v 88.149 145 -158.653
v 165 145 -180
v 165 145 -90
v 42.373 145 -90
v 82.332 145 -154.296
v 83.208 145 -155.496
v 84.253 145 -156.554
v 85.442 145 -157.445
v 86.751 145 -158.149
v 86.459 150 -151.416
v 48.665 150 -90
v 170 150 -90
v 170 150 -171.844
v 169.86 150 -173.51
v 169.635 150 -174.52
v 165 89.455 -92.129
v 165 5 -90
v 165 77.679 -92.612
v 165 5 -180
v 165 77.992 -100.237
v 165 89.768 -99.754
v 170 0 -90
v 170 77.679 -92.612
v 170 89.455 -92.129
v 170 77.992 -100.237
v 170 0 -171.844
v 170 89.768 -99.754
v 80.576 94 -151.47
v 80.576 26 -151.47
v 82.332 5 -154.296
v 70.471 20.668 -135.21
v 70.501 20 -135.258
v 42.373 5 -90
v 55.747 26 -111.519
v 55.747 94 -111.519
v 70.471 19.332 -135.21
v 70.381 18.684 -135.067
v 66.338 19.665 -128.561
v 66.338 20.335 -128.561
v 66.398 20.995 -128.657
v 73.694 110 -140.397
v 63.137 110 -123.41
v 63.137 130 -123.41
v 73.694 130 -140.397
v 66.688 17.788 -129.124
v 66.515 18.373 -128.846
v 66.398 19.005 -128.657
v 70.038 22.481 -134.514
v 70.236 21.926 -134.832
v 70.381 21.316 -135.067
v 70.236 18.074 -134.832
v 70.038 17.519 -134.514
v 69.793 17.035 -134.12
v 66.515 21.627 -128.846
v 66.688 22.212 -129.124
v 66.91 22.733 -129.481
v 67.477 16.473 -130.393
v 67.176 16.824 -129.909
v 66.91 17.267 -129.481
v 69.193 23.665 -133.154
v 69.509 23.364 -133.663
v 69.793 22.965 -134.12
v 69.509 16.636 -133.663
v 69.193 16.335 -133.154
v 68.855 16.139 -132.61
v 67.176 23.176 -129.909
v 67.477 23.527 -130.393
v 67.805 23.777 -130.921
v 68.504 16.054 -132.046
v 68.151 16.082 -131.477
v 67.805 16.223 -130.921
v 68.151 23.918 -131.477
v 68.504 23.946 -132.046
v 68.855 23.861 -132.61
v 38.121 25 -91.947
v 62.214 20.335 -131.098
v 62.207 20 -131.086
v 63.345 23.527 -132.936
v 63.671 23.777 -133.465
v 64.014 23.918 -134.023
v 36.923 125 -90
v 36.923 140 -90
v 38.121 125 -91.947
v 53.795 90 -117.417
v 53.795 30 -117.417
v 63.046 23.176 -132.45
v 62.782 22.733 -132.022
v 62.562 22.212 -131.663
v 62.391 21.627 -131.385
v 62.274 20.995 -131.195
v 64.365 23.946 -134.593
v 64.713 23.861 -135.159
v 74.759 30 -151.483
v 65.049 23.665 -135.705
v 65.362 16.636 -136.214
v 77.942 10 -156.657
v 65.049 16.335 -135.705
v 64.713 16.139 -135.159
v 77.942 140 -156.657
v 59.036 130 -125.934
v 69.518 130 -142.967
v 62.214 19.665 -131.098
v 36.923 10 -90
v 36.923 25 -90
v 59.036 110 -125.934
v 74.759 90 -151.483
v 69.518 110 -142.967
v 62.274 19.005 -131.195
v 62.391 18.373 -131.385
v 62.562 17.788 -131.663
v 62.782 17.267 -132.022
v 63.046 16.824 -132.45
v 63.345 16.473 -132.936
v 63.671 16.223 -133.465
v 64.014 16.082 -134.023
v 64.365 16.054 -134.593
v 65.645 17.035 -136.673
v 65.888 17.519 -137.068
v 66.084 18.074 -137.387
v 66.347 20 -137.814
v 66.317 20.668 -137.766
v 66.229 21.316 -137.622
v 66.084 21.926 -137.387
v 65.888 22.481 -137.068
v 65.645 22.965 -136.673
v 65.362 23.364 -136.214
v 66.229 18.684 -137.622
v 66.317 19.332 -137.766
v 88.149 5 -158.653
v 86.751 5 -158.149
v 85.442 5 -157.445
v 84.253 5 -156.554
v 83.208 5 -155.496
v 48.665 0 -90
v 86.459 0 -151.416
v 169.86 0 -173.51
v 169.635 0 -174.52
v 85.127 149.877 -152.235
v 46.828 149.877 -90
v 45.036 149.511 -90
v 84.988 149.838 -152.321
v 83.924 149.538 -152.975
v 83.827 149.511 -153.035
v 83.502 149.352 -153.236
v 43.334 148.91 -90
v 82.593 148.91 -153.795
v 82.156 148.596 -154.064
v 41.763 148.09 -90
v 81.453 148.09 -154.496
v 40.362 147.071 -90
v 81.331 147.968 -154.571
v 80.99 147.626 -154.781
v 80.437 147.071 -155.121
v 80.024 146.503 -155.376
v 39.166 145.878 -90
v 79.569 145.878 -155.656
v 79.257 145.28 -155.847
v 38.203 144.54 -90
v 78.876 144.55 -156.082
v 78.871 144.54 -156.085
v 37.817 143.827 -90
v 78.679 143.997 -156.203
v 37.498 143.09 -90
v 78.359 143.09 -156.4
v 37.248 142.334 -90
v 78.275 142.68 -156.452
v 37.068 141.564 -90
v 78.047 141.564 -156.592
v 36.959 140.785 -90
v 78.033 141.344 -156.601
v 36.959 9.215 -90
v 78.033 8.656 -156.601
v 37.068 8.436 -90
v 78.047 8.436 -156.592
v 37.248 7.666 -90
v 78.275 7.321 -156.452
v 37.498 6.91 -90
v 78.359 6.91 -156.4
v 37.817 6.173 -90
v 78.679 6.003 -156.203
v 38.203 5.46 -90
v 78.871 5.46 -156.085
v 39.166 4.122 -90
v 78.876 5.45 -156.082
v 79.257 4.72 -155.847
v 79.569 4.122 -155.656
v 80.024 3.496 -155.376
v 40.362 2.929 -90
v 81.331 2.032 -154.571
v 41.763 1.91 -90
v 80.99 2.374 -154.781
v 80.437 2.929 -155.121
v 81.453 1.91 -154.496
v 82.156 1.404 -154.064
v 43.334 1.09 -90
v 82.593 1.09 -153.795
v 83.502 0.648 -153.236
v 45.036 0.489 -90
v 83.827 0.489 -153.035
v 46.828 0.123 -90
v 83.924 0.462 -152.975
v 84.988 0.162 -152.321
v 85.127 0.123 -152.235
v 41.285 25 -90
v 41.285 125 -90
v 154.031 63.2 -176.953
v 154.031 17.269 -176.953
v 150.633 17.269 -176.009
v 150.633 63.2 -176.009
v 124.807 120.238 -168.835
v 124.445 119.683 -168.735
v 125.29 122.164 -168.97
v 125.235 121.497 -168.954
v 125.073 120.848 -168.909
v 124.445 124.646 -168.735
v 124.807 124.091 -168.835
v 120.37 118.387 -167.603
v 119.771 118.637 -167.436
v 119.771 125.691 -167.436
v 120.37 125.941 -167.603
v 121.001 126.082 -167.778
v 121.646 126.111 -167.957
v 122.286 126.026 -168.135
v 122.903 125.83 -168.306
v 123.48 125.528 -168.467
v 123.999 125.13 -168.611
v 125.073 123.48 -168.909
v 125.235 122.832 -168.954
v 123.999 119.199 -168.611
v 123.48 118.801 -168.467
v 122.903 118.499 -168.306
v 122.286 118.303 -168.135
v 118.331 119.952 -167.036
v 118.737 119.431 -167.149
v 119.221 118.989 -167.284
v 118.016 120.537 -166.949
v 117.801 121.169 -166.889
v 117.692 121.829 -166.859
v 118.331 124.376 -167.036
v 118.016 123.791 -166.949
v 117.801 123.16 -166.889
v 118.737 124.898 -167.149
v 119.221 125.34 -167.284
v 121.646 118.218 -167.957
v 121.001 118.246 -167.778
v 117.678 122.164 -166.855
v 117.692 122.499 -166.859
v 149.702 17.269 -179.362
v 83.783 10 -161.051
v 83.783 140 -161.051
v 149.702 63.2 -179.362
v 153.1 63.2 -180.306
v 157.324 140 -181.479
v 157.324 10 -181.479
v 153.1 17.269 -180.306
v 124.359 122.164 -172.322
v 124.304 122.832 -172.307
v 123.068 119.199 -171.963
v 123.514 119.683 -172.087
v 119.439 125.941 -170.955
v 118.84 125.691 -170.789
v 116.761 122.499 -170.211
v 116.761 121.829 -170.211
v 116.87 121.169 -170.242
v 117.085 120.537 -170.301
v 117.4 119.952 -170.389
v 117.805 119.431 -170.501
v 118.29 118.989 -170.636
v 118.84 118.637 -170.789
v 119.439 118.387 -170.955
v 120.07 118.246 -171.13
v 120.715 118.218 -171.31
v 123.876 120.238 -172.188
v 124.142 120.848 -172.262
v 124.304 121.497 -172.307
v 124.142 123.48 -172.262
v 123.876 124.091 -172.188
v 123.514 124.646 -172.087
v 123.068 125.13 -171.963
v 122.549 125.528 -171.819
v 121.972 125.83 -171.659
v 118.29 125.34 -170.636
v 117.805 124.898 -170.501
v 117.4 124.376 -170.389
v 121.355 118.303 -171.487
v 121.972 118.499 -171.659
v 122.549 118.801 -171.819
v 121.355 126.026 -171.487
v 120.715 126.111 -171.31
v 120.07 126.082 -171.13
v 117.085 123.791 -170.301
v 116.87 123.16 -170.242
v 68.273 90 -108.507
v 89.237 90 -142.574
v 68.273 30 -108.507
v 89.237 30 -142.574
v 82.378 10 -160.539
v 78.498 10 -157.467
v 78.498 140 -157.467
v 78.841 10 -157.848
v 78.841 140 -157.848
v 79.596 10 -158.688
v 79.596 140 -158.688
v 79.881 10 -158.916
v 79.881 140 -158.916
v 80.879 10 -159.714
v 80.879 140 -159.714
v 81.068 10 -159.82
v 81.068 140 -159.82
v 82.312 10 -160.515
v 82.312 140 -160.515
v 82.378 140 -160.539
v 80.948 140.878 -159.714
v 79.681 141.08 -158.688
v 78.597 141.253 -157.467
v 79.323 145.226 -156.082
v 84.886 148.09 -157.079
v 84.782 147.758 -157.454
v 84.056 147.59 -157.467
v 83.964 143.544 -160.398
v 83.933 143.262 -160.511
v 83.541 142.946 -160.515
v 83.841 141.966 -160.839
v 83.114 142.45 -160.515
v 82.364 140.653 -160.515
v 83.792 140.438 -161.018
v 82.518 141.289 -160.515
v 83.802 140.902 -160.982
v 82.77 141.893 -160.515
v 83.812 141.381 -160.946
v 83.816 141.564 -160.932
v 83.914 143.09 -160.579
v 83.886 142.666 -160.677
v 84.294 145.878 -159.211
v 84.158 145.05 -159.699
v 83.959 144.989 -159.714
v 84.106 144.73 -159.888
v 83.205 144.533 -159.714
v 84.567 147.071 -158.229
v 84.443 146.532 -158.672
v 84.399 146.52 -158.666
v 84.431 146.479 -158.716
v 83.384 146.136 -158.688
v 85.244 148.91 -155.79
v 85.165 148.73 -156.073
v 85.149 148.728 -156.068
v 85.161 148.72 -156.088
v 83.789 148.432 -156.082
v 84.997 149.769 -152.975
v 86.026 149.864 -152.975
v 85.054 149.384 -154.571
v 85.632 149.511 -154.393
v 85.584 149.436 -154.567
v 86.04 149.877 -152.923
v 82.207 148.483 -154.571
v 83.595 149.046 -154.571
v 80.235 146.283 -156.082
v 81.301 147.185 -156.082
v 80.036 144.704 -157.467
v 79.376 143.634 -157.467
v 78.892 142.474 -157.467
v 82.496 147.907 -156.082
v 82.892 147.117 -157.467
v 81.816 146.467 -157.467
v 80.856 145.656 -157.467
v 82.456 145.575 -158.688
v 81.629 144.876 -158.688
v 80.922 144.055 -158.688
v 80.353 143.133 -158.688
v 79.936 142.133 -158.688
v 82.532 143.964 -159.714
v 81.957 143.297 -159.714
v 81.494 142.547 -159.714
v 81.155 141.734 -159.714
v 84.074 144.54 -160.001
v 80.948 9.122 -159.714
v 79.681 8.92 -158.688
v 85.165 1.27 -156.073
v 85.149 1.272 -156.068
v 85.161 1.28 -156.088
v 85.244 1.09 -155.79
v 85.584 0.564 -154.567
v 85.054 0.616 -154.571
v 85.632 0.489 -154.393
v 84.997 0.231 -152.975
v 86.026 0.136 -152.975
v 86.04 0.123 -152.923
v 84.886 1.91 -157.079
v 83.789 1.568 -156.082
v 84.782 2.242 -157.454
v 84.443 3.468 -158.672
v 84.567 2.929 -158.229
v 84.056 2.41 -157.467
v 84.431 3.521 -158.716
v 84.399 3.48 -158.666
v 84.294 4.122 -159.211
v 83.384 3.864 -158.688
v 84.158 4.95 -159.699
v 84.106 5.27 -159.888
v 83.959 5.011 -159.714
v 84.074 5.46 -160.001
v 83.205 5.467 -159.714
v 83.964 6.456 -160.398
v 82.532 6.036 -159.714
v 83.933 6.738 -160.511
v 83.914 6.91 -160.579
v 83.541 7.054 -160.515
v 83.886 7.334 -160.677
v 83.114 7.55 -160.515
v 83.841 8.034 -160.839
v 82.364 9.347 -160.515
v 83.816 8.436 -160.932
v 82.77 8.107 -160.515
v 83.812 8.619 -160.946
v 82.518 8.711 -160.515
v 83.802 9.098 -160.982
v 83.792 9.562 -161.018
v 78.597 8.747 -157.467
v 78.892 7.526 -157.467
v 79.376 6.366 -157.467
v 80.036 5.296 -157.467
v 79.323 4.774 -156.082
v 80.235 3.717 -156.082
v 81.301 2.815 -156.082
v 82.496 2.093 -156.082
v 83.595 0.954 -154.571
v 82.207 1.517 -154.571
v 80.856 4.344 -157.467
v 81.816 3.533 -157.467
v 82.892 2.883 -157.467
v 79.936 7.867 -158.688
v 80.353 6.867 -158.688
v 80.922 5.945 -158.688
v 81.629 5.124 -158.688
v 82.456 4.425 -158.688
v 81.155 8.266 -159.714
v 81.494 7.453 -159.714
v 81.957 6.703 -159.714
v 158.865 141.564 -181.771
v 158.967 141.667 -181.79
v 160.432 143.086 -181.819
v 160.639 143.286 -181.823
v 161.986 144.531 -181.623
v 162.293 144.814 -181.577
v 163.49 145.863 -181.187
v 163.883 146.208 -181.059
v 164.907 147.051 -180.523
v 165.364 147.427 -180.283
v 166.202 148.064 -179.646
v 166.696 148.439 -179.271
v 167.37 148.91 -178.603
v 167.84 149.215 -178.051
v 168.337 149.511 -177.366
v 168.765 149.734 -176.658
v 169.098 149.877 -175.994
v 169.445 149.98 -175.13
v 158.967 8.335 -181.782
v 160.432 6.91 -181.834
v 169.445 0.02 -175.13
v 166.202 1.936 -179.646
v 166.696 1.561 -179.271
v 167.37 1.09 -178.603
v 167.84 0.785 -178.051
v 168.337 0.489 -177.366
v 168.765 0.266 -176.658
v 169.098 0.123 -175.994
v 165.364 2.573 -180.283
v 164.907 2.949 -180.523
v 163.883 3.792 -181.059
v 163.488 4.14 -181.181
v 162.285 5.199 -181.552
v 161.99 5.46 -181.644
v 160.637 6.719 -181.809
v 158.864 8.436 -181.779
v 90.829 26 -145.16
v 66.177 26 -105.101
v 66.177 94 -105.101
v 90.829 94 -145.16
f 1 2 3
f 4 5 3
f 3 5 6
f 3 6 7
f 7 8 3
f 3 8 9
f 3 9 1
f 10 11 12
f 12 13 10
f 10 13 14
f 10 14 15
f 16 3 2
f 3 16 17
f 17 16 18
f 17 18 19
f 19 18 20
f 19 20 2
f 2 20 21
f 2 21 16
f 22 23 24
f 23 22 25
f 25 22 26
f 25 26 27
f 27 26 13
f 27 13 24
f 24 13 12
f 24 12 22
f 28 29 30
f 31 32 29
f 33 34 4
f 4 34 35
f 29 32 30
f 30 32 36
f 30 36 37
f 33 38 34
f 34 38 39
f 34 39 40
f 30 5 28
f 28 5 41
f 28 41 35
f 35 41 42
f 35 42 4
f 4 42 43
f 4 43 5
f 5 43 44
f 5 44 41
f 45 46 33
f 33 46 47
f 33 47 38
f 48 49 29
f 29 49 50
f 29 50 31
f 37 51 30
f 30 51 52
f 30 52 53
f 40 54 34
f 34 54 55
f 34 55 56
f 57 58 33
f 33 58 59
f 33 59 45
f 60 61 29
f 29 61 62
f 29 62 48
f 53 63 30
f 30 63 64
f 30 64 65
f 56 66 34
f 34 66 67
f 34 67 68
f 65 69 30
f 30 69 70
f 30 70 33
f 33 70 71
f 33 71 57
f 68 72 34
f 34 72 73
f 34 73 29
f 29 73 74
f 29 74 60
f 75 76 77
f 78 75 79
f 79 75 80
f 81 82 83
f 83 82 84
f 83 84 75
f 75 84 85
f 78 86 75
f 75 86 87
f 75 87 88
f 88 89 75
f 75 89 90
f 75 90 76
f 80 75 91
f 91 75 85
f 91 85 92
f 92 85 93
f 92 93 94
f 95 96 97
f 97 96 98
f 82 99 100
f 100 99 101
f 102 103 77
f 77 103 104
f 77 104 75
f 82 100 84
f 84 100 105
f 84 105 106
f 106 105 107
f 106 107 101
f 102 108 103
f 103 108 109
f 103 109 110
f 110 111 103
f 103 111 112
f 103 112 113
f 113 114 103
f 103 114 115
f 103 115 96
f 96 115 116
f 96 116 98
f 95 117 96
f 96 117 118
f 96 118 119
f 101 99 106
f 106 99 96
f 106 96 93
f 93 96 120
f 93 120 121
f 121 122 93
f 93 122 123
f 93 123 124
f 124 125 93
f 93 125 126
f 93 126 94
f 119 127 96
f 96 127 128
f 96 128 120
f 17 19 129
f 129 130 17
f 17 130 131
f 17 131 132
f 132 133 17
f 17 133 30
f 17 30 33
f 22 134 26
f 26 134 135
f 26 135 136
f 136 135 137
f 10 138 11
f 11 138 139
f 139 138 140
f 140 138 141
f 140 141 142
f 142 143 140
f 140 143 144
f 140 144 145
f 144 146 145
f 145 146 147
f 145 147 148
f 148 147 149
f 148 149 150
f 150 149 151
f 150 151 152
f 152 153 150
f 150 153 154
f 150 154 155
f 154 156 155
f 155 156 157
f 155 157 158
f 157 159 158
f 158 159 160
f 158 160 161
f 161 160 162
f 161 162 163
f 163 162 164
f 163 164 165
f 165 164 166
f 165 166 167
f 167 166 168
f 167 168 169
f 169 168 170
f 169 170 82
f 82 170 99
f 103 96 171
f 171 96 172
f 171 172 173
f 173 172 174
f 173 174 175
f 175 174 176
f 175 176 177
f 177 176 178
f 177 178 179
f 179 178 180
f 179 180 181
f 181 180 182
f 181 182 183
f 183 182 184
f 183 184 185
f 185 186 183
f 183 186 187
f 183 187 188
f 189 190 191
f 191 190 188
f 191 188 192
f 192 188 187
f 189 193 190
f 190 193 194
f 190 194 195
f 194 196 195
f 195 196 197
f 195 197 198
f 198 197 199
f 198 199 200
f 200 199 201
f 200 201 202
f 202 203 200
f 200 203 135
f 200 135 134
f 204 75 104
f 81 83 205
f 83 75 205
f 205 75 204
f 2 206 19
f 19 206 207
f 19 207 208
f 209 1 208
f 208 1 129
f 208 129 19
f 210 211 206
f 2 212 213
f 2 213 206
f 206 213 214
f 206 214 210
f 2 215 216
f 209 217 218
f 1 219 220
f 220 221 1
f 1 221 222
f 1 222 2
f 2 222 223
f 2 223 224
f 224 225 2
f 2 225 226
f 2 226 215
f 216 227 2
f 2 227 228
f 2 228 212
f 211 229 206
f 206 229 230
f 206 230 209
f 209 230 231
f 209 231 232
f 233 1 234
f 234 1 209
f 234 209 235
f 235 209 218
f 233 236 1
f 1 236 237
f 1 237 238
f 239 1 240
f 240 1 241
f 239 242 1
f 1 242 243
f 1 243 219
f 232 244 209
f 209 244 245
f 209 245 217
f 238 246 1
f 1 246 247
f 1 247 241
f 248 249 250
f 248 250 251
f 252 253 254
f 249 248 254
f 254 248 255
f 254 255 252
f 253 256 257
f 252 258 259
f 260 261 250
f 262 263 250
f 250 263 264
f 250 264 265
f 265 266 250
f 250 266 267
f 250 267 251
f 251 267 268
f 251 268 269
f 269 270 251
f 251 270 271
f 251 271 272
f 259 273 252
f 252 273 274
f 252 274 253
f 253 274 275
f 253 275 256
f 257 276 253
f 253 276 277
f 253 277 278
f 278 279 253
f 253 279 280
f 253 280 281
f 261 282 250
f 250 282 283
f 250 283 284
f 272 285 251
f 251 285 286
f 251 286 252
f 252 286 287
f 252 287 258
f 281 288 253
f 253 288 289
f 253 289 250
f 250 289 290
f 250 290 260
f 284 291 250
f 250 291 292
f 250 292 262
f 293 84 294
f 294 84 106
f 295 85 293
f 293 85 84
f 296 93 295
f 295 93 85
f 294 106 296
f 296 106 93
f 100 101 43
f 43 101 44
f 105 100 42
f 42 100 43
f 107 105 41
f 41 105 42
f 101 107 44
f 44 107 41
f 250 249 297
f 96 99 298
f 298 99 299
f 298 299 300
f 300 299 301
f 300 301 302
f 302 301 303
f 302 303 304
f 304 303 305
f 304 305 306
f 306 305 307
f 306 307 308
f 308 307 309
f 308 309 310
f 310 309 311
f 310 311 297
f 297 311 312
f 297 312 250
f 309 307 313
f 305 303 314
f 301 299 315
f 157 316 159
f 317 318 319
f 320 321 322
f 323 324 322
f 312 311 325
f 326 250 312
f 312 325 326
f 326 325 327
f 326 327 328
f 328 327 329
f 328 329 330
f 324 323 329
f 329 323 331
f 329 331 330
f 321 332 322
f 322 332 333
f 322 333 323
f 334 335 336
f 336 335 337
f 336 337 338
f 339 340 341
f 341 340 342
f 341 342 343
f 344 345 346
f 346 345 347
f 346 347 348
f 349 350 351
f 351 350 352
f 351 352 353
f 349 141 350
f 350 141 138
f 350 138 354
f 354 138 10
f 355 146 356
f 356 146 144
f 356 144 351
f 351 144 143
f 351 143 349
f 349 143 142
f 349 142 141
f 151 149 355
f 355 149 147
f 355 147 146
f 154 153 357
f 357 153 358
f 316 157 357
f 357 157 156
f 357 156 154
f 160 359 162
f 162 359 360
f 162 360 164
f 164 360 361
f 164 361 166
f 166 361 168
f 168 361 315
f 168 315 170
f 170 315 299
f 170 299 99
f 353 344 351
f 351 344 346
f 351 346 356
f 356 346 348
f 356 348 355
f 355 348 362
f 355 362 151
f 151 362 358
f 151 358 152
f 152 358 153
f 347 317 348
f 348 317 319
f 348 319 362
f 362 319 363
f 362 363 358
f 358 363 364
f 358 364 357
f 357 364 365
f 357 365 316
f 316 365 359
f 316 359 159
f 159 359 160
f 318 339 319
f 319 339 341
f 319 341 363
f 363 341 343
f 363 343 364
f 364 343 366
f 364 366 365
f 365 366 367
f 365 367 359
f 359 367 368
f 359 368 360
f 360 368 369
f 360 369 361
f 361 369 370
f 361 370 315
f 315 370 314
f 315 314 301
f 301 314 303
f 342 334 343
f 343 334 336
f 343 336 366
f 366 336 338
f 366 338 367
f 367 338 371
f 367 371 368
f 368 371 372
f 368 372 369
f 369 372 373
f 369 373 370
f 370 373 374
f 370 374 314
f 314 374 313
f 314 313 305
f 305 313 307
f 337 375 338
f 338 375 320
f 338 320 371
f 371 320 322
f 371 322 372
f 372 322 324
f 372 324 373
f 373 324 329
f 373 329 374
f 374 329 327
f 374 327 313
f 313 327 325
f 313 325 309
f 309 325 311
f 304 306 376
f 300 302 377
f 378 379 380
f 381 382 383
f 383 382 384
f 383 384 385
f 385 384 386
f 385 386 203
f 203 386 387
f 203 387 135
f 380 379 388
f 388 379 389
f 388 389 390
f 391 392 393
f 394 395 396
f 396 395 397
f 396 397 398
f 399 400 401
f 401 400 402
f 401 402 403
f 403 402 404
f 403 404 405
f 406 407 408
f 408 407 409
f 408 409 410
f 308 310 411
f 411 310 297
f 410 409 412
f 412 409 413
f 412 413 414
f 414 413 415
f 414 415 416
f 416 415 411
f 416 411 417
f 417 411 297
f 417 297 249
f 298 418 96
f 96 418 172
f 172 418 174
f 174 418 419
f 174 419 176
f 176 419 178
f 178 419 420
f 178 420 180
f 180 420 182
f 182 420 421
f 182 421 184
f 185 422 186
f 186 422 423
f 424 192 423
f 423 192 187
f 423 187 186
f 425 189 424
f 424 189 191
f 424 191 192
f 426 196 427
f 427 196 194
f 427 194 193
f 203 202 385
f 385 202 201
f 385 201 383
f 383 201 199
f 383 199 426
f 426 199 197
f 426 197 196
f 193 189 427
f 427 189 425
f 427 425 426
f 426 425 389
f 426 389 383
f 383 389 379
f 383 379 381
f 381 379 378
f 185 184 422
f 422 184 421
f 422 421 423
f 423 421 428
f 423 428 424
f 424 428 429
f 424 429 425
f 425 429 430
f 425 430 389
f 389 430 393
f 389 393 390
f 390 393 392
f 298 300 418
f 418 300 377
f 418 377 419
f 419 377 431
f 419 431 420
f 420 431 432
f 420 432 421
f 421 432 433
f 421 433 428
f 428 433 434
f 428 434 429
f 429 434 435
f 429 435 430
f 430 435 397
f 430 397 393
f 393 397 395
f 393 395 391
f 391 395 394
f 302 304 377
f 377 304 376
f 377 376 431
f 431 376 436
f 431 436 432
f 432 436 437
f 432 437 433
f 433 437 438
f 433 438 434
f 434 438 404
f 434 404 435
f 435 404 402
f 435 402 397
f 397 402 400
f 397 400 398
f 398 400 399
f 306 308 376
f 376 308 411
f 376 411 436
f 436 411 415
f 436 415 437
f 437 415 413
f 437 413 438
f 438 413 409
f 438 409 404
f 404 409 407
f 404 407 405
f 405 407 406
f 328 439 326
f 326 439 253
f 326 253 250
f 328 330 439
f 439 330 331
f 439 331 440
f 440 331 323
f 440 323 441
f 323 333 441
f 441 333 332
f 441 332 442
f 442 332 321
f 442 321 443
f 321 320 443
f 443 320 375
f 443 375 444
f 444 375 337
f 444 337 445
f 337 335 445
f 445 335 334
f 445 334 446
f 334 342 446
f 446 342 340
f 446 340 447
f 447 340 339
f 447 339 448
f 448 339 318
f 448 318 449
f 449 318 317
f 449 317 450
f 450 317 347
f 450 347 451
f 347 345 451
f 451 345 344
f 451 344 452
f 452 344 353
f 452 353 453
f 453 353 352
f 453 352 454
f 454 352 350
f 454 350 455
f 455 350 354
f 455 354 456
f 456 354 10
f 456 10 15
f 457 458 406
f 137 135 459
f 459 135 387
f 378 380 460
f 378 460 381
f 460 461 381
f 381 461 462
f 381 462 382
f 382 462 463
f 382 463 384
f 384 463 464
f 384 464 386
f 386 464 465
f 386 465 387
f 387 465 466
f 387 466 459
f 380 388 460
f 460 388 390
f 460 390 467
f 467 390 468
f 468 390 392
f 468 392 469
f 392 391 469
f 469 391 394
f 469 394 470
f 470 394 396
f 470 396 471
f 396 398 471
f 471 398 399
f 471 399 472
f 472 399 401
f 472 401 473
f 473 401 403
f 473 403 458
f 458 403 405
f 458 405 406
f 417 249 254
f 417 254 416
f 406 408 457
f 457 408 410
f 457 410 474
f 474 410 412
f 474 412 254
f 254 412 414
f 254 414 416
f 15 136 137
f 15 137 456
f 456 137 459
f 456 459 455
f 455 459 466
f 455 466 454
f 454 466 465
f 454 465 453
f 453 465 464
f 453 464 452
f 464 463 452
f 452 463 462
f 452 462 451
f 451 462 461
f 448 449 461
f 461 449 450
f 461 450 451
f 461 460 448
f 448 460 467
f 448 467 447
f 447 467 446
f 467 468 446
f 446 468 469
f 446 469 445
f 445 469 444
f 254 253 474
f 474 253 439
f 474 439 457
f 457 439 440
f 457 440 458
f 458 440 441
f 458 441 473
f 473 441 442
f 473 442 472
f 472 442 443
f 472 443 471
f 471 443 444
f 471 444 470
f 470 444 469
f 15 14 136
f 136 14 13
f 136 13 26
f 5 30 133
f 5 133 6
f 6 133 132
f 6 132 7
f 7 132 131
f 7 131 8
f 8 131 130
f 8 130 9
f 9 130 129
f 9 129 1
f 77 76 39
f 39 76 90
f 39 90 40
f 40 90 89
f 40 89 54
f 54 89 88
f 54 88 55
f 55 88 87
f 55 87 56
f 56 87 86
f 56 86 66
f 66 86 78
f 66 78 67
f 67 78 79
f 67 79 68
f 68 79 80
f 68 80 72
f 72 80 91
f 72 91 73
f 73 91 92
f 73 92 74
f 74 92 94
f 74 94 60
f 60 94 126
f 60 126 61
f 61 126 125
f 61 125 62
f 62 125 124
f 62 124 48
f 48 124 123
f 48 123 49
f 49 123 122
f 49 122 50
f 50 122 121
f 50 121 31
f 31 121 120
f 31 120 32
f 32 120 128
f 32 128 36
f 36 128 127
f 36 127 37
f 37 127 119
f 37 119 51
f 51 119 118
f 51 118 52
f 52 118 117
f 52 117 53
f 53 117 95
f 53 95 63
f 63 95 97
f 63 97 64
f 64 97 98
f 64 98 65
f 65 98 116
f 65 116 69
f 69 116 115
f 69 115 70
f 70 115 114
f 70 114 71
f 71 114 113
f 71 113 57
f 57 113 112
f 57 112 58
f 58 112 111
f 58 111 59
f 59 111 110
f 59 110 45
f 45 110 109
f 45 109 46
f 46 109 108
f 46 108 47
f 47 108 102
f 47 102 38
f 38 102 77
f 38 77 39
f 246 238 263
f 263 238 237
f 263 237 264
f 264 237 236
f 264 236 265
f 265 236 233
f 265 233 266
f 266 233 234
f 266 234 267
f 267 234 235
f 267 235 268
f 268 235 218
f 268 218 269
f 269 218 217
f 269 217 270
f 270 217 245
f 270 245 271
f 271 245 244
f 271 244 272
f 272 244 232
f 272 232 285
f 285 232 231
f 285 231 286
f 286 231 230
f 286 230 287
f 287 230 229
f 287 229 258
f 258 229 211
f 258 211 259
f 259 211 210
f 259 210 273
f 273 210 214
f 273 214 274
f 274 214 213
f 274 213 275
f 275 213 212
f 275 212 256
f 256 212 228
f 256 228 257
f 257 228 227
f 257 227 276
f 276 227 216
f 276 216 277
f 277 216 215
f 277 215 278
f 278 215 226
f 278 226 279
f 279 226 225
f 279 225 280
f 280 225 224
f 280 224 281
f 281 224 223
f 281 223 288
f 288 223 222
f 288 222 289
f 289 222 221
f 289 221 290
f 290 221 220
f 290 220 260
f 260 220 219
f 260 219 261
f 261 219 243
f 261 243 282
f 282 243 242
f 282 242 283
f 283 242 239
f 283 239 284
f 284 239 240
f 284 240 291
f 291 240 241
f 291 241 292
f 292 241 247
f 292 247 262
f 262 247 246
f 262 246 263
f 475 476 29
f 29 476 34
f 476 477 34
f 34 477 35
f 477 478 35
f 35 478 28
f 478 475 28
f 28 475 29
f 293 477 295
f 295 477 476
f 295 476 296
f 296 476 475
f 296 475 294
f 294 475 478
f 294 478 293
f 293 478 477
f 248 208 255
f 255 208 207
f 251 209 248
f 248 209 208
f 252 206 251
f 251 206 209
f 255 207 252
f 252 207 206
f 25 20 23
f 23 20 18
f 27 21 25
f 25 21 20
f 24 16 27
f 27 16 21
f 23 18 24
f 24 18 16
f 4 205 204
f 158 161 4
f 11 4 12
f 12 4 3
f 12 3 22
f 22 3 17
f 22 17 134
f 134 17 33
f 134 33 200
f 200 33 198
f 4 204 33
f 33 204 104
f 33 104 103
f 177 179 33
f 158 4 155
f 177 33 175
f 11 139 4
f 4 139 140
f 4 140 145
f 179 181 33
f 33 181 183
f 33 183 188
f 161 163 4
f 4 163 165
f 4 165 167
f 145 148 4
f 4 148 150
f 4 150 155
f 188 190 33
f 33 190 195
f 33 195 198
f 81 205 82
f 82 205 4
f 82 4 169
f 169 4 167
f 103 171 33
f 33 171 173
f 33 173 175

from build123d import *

# Parameters (mm, degrees)
ESBO_O1_W                  = 170
ESBO_O1_H                  = 30
RESSALTO_EXTRUS_O1_DEPTH   = 150
CORTE_EXTRUS_O1_DEPTH      = 222
CORTE_EXTRUS_O1_DEPTH_BACK = 36
RESSALTO_EXTRUS_O2_DEPTH   = 5
RESSALTO_EXTRUS_O3_DEPTH   = 5
ESBO_O4_W                  = 159.333333333
ESBO_O4_H                  = 140.588235294
CORTE_EXTRUS_O2_DEPTH      = 25
CORTE_EXTRUS_O3_DEPTH      = 31
CORTE_EXTRUS_O4_DEPTH      = 42
FILETE1_R                  = 10
CORTE_EXTRUS_O5_DEPTH      = 32
CORTE_EXTRUS_O6_START      = -15.72292277
CORTE_EXTRUS_O6_OUTLINE_R  = 3.95
CORTE_EXTRUS_O6_DEPTH      = 4.876648775
CORTE_EXTRUS_O7_START      = -132.751356438
CORTE_EXTRUS_O7_OUTLINE_R  = 3.95
CORTE_EXTRUS_O7_DEPTH      = 3.479370229
RESSALTO_EXTRUS_O6_DEPTH   = 17
RESSALTO_EXTRUS_O7_DEPTH   = 4
CORTE_EXTRUS_O8_DEPTH      = 21
F_3DSKETCH12_R             = 1.5
CORTE_EXTRUS_O9_DEPTH      = 14
CORTE_EXTRUS_O10_DEPTH     = 19
ESBO_O11_W                 = 17.407525744
ESBO_O11_H                 = 16.792397695
CORTE_EXTRUS_O11_DEPTH     = 10
CORTE_EXTRUS_O12_DEPTH     = 20
CORTE_EXTRUS_O13_DEPTH     = 14
ESBO_O12_W                 = 182.438351364
ESBO_O12_H                 = 161.616583002
CORTE_EXTRUS_O14_DEPTH     = 90


# Read off the part's stored shape, not the designer's step: Corte-extrusão6, Corte-extrusão7
with BuildPart() as part:
    # Esboço1 → Ressalto-extrusão1 (new body)
    with BuildSketch(Plane(origin=(0, 0, 0), x_dir=(1, 0, 0), z_dir=(0, 1, 0))):
        with Locations((85, 15)):
            Rectangle(ESBO_O1_W, ESBO_O1_H)
        Polygon((80, 160), (0, 30), (170, 30), (170, 160), align=None)
        Polygon((170, 160), (170, 185), (80, 160), align=None)
    extrude(amount=RESSALTO_EXTRUS_O1_DEPTH)

    # Esboço2 → Corte-extrusão1 (cut, two sides: drawn at the far end of the back side and taken through both)
    with BuildSketch(Plane(origin=(0, 0, 0), x_dir=(1, 0, 0), z_dir=(0, 1, 0)).offset(-CORTE_EXTRUS_O1_DEPTH_BACK)):
        Polygon((84.391050739, 157.608625205), (165, 180), (165, 5), (5, 5), (5, 29.866892941), align=None)
    extrude(amount=CORTE_EXTRUS_O1_DEPTH + CORTE_EXTRUS_O1_DEPTH_BACK, mode=Mode.SUBTRACT)

    # Esboço3 → Ressalto-extrusão2 (add)
    with BuildSketch(Plane(origin=(0, 0, 0), x_dir=(1, 0, 0), z_dir=(0, 1, 0))):
        Polygon((84.391050739, 157.608625205), (165, 180), (165, 5), (5, 5), (5, 29.866892941), align=None)
    extrude(amount=RESSALTO_EXTRUS_O2_DEPTH)

    # 3DSketch2 → Ressalto-extrusão3 (add)
    with BuildSketch(Plane(origin=(165, 150, -5), x_dir=(0, 0, -1), z_dir=(0, 1, 0))):
        Polygon((0, 0), (0, 160), (24.866892941, 160), (152.608625205, 80.608949261), (175, 0), align=None)
    extrude(amount=-RESSALTO_EXTRUS_O3_DEPTH)

    # Esboço4 → Corte-extrusão2 (cut)
    with BuildSketch(Plane.XY):
        with Locations((85.333333333, 74.705882353)):
            Rectangle(ESBO_O4_W, ESBO_O4_H)
    extrude(amount=-CORTE_EXTRUS_O2_DEPTH, mode=Mode.SUBTRACT)

    # 3DSketch3 → Corte-extrusão3 (cut)
    with BuildSketch(Plane(origin=(74.759025743, 90, -151.483416833), x_dir=(-0.29071694485714406, -0.8320502943378435, 0.4724150353928592), z_dir=(-0.8516583167045438, 0, -0.5240974256643346))):
        Polygon((0, 0), (22.188007849, 33.282011774), (72.111025509, 0), (49.92301766, -33.282011774), align=None)
    extrude(amount=-CORTE_EXTRUS_O3_DEPTH, mode=Mode.SUBTRACT)

    # 3DSketch4 → Corte-extrusão4 (cut)
    with BuildSketch(Plane(origin=(69.518051487, 130, -142.966833666), x_dir=(-0.37059284368967266, -0.7071067811865471, 0.6022133709956982), z_dir=(0.8516583167045362, 0, 0.5240974256643472))):
        Polygon((0, 0), (14.142135624, -14.142135624), (28.284271247, 0), (14.142135624, 14.142135624), align=None)
    extrude(amount=CORTE_EXTRUS_O4_DEPTH, mode=Mode.SUBTRACT)

    # Filete1
    filete1_edges = [part.edges().sort_by_distance(p)[0] for p in [
        (170, 75, -185),
        (125, 0, -172.5),
        (125, 150, -172.5),
        (80, 75, -160),
        (40, 0, -95),
        (40, 150, -95),
        (0, 75, -30),
        (84.391050739, 75, -157.608625205),
    ]]
    fillet(filete1_edges, radius=FILETE1_R)

    # 3DSketch5 → Corte-extrusão5 (cut)
    with BuildSketch(Plane(origin=(38.121221288, 25, -91.946984593), x_dir=(-0.194644897392922, 0.9284766908852593, 0.31629795826349816), z_dir=(0.851658316704544, 0, 0.5240974256643347))):
        Polygon((0, 0), (14.855627054, 37.139067635), (107.703296143, 0), (92.847669089, -37.139067635), align=None)
    extrude(amount=CORTE_EXTRUS_O5_DEPTH, mode=Mode.SUBTRACT)

    # Corte-extrusão6 outline → Corte-extrusão6 (cut)
    with BuildSketch(Plane(origin=(0, 0, 0), x_dir=(0.5240974256643349, 0, -0.8516583167045437), z_dir=(0.8516583167045437, 0, 0.5240974256643349)).offset(CORTE_EXTRUS_O6_START)):
        with Locations((148.193124726, 20)):
            Circle(CORTE_EXTRUS_O6_OUTLINE_R)
    extrude(amount=CORTE_EXTRUS_O6_DEPTH, mode=Mode.SUBTRACT)

    # Corte-extrusão7 outline → Corte-extrusão7 (cut)
    with BuildSketch(Plane(origin=(0, 0, 0), x_dir=(0.9635179096299408, 0, -0.267643863786094), z_dir=(0.267643863786094, 0, 0.9635179096299409)).offset(CORTE_EXTRUS_O7_START)):
        with Locations((161.993020775, 122.164347625)):
            Circle(CORTE_EXTRUS_O7_OUTLINE_R)
    extrude(amount=CORTE_EXTRUS_O7_DEPTH, mode=Mode.SUBTRACT)

    # 3DSketch9 → Ressalto-extrusão6 (add)
    with BuildSketch(Plane(origin=(76.350750718, 26, -154.069969916), x_dir=(-0.29815073011621673, 0.8224176546598938, 0.4844949364388514), z_dir=(0.8516583167045438, 0, 0.5240974256643349))):
        Polygon((0, 0), (26.758649409, 38.684123705), (82.683049926, 0), (55.924400517, -38.684123705), align=None)
        Polygon((5.017416454, 0.222210211), (27.772783339, 33.118916398), (77.117842619, -1.01413393), (54.362475733, -33.910840117), align=None, mode=Mode.SUBTRACT)
    extrude(amount=RESSALTO_EXTRUS_O6_DEPTH)

    # 3DSketch10 → Ressalto-extrusão7 (add, along a direction that is not the sketch's normal)
    with BuildSketch(Plane(origin=(0, 0, 0), x_dir=(0.7498378553650926, 0.6616216370868463, 0), z_dir=(0, 0, 1))):
        with BuildLine():
            Line((0, 0), (14.996757107, -13.232432742))
            Line((14.996757107, -13.232432742), (28.229189849, 1.764324366))
            ThreePointArc((28.229189849, 1.764324366), (21.556867541, 14.536675999), (25.141622209, 28.493838504))
            Line((25.141622209, 28.493838504), (13.232432742, 14.996757107))
            Line((13.232432742, 14.996757107), (0, 0))
        make_face()
        with BuildLine():
            Line((99.243245563, 112.475678305), (115.742930564, 97.917132715))
            Line((115.742930564, 97.917132715), (100.070543679, 80.155094246))
            ThreePointArc((100.070543679, 80.155094246), (86.055529464, 85.755516688), (71.66166921, 81.216558438))
            Line((71.66166921, 81.216558438), (83.570858678, 94.713639835))
            Line((83.570858678, 94.713639835), (99.243245563, 112.475678305))
        make_face()
        Polygon((226.715680975, 0), (211.718923868, 13.232432742), (198.486491126, -1.764324366), (213.483248233, -14.996757107), align=None)
        Polygon((127.472435412, -112.475678305), (112.475678305, -99.243245563), (125.708111047, -84.246488456), (140.704868154, -97.478921197), align=None)
    extrude(amount=-RESSALTO_EXTRUS_O7_DEPTH, dir=(0.26764386378609445, 0, 0.9635179096299407))

    # 3DSketch11 → Corte-extrusão8 (cut)
    with BuildSketch(Plane(origin=(153.100052242, 17.26943239, -180.305570067), x_dir=(-0.07376023038027929, 0.9970655099962036, 0.02048895288341091), z_dir=(0.2676438637860946, 0, 0.9635179096299407))):
        Polygon((0, 0), (0.269964353, 3.516152018), (46.066103253, 0), (45.7961389, -3.516152018), align=None)
    extrude(amount=CORTE_EXTRUS_O8_DEPTH, mode=Mode.SUBTRACT)

    # 3DSketch12 → Corte-extrusão9 (cut)
    with BuildSketch(Plane(origin=(160, 140, 0), x_dir=(-0.7560654573770964, -0.6544960077503622, 0), z_dir=(0, 0, 1))):
        with Locations(Location((0, 0, 0), (0, 0, 319.118554366))):
            Circle(F_3DSKETCH12_R)
        with Locations(Location((85.084481008, 98.288509459, 0), (0, 0, 319.118554366))):
            Circle(F_3DSKETCH12_R)
        with Locations(Location((113.858951537, -96.124361942, 0), (0, 0, 139.118554366))):
            Circle(F_3DSKETCH12_R)
        with Locations(Location((196.909602971, 0, 0), (0, 0, 139.118554366))):
            Circle(F_3DSKETCH12_R)
    extrude(amount=-CORTE_EXTRUS_O9_DEPTH, mode=Mode.SUBTRACT)

    # 3DSketch13 → Corte-extrusão10 (cut)
    with BuildSketch(Plane(origin=(170, 70.245878967, 0), x_dir=(0, -0.4354246522459521, -0.9002251786172678), z_dir=(-1, 0, 0))):
        Polygon((0, 0), (32.261446294, -15.604350297), (39.809023237, 0), (7.547576943, 15.604350297), align=None)
    extrude(amount=CORTE_EXTRUS_O10_DEPTH, mode=Mode.SUBTRACT)

    # Esboço11 → Corte-extrusão11 (cut)
    with BuildSketch(Plane(origin=(170, 0, 0), x_dir=(0, 0, -1), z_dir=(1, 0, 0))):
        with Locations((8.703762872, 30.096304842)):
            Rectangle(ESBO_O11_W, ESBO_O11_H)
    extrude(amount=-CORTE_EXTRUS_O11_DEPTH, mode=Mode.SUBTRACT)

    # 3DSketch14 → Corte-extrusão12 (cut)
    with BuildSketch(Plane(origin=(170, 87.396079578, 0), x_dir=(0, -0.09341146144778735, -0.9956275904524686), z_dir=(1, 0, 0))):
        Polygon((0, 0), (20.627912038, 1.935345533), (19.506160301, 13.891554783), (-1.121751737, 11.956209249), align=None)
        Polygon((-2.576084268, 27.457236328), (18.165947056, 29.403288726), (16.691971594, 45.113680317), (-4.050059731, 43.167627919), align=None)
        Polygon((91.534016736, 10.656116635), (99.096194716, 11.679615344), (100.676965661, 0), (93.114787682, -1.02349871), align=None)
    extrude(amount=-CORTE_EXTRUS_O12_DEPTH, mode=Mode.SUBTRACT)

    # 3DSketch15 → Corte-extrusão13 (cut)
    with BuildSketch(Plane(origin=(129.748977416, 150, 0), x_dir=(-0.6170578351280018, 0, -0.7869178026370631), z_dir=(0, -1, 0))):
        Polygon((0, 0), (11.819817446, 9.268453377), (19.087630878, 0), (7.267813432, -9.268453377), align=None)
    extrude(amount=CORTE_EXTRUS_O13_DEPTH, mode=Mode.SUBTRACT)

    # Esboço12 → Corte-extrusão14 (cut)
    with BuildSketch(Plane.XY):
        with Locations((84.195107922, 72.896320561)):
            Rectangle(ESBO_O12_W, ESBO_O12_H)
    extrude(amount=-CORTE_EXTRUS_O14_DEPTH, mode=Mode.SUBTRACT)


solid = part.part
